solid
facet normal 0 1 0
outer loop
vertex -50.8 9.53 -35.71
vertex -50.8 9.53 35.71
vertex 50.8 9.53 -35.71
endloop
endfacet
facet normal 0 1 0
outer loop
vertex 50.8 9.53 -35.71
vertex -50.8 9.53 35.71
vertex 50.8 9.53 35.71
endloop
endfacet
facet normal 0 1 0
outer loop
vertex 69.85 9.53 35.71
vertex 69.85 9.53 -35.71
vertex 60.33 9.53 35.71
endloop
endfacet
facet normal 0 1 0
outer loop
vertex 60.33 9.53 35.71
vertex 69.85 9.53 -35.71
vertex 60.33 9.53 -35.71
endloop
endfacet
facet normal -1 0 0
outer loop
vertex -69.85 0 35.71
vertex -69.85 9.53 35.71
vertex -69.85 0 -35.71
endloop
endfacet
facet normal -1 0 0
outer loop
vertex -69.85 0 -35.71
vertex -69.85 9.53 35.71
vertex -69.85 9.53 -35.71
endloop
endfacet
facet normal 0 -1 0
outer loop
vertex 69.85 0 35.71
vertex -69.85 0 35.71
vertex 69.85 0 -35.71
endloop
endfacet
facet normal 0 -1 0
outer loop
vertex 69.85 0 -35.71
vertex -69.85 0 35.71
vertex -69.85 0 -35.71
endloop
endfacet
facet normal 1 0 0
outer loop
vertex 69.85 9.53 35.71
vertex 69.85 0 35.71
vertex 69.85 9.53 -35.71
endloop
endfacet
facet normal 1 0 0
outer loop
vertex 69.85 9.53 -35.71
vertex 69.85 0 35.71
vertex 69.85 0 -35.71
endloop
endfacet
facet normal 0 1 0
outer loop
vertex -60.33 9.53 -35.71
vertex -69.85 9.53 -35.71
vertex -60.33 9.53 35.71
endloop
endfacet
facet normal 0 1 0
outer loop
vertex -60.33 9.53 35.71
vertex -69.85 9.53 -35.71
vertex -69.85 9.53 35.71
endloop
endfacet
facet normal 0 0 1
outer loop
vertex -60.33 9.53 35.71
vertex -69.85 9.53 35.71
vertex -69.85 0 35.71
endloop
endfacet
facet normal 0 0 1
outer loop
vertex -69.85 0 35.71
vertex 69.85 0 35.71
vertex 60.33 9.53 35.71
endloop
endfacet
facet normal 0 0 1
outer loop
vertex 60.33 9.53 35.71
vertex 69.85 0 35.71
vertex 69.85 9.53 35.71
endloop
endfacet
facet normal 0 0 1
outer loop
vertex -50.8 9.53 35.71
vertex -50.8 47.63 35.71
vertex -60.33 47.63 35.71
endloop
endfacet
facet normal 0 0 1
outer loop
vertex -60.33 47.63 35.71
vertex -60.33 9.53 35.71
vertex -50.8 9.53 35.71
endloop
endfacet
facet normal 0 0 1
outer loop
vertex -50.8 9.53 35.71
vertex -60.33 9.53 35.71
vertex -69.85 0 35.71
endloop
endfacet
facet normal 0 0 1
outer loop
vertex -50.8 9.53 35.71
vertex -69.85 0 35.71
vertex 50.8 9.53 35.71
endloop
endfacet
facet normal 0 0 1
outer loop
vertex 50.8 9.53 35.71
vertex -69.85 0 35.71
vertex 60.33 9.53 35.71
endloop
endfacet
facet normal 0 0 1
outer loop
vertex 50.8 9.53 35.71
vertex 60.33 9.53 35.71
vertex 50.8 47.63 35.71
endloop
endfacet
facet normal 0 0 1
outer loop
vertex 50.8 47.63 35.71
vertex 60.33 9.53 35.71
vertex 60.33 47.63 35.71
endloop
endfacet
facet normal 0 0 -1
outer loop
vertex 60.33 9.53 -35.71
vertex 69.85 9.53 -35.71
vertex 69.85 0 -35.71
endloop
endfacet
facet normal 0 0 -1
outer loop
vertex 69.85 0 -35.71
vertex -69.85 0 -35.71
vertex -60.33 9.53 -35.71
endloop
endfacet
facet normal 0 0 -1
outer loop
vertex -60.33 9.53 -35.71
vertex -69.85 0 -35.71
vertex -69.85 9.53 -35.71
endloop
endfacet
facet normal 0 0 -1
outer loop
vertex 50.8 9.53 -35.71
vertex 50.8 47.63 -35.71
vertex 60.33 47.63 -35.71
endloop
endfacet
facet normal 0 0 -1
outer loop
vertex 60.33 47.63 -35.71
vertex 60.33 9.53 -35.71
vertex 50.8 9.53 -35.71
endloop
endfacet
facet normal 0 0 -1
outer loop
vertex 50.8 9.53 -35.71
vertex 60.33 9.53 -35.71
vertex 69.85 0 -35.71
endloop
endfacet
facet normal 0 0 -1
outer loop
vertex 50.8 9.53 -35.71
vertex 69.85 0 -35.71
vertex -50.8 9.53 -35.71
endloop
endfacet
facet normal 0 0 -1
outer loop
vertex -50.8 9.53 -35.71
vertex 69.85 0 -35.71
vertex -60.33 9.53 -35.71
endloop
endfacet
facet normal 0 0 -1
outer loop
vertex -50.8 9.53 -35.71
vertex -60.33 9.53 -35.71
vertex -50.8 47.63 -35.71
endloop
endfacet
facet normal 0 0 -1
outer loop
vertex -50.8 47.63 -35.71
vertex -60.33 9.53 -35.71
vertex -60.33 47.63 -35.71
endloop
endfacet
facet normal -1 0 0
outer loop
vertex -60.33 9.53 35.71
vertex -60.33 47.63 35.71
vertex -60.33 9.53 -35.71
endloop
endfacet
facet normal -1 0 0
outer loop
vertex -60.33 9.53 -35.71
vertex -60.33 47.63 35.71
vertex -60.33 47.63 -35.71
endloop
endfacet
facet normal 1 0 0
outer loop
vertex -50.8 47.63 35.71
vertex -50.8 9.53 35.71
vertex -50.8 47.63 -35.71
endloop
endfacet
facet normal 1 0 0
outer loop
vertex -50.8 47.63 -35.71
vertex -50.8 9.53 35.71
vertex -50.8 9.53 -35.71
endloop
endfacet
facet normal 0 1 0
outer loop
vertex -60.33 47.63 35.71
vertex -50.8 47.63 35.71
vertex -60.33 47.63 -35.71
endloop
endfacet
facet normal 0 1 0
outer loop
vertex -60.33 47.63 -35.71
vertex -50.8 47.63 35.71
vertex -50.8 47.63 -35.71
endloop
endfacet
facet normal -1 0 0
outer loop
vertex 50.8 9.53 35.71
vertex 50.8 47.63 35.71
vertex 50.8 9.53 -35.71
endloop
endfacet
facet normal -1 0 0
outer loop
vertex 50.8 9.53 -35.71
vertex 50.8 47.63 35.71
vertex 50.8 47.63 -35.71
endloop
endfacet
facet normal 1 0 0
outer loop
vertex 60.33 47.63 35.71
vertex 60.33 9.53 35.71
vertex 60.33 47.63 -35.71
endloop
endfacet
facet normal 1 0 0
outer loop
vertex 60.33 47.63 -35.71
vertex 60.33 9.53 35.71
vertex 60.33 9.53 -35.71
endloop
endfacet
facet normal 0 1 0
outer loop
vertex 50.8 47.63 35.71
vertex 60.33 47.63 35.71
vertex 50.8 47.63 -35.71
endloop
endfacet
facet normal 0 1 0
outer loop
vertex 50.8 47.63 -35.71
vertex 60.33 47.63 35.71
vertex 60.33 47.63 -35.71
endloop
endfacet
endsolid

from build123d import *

# Parameters (mm, degrees)
SKETCH1_W    = 139.7
SKETCH1_H    = 9.53
BLOCK1_DEPTH = 71.42
SKETCH2_W    = 9.53
SKETCH2_H    = 38.1
BLOCK2_DEPTH = 71.42
SKETCH3_W    = 9.53
SKETCH3_H    = 38.1
BLOCK3_DEPTH = 71.42


with BuildPart() as part:
    # Sketch1 → Block1 (new body)
    with BuildSketch(Plane.XY.offset(-35.71)):
        with Locations((0, 4.765)):
            Rectangle(SKETCH1_W, SKETCH1_H)
    extrude(amount=BLOCK1_DEPTH)

    # Sketch2 → Block2 (add)
    with BuildSketch(Plane.XY.offset(-35.71)):
        with Locations((-55.565, 28.58)):
            Rectangle(SKETCH2_W, SKETCH2_H)
    extrude(amount=BLOCK2_DEPTH)

    # Sketch3 → Block3 (add)
    with BuildSketch(Plane.XY.offset(-35.71)):
        with Locations((55.565, 28.58)):
            Rectangle(SKETCH3_W, SKETCH3_H)
    extrude(amount=BLOCK3_DEPTH)


solid = part.part
